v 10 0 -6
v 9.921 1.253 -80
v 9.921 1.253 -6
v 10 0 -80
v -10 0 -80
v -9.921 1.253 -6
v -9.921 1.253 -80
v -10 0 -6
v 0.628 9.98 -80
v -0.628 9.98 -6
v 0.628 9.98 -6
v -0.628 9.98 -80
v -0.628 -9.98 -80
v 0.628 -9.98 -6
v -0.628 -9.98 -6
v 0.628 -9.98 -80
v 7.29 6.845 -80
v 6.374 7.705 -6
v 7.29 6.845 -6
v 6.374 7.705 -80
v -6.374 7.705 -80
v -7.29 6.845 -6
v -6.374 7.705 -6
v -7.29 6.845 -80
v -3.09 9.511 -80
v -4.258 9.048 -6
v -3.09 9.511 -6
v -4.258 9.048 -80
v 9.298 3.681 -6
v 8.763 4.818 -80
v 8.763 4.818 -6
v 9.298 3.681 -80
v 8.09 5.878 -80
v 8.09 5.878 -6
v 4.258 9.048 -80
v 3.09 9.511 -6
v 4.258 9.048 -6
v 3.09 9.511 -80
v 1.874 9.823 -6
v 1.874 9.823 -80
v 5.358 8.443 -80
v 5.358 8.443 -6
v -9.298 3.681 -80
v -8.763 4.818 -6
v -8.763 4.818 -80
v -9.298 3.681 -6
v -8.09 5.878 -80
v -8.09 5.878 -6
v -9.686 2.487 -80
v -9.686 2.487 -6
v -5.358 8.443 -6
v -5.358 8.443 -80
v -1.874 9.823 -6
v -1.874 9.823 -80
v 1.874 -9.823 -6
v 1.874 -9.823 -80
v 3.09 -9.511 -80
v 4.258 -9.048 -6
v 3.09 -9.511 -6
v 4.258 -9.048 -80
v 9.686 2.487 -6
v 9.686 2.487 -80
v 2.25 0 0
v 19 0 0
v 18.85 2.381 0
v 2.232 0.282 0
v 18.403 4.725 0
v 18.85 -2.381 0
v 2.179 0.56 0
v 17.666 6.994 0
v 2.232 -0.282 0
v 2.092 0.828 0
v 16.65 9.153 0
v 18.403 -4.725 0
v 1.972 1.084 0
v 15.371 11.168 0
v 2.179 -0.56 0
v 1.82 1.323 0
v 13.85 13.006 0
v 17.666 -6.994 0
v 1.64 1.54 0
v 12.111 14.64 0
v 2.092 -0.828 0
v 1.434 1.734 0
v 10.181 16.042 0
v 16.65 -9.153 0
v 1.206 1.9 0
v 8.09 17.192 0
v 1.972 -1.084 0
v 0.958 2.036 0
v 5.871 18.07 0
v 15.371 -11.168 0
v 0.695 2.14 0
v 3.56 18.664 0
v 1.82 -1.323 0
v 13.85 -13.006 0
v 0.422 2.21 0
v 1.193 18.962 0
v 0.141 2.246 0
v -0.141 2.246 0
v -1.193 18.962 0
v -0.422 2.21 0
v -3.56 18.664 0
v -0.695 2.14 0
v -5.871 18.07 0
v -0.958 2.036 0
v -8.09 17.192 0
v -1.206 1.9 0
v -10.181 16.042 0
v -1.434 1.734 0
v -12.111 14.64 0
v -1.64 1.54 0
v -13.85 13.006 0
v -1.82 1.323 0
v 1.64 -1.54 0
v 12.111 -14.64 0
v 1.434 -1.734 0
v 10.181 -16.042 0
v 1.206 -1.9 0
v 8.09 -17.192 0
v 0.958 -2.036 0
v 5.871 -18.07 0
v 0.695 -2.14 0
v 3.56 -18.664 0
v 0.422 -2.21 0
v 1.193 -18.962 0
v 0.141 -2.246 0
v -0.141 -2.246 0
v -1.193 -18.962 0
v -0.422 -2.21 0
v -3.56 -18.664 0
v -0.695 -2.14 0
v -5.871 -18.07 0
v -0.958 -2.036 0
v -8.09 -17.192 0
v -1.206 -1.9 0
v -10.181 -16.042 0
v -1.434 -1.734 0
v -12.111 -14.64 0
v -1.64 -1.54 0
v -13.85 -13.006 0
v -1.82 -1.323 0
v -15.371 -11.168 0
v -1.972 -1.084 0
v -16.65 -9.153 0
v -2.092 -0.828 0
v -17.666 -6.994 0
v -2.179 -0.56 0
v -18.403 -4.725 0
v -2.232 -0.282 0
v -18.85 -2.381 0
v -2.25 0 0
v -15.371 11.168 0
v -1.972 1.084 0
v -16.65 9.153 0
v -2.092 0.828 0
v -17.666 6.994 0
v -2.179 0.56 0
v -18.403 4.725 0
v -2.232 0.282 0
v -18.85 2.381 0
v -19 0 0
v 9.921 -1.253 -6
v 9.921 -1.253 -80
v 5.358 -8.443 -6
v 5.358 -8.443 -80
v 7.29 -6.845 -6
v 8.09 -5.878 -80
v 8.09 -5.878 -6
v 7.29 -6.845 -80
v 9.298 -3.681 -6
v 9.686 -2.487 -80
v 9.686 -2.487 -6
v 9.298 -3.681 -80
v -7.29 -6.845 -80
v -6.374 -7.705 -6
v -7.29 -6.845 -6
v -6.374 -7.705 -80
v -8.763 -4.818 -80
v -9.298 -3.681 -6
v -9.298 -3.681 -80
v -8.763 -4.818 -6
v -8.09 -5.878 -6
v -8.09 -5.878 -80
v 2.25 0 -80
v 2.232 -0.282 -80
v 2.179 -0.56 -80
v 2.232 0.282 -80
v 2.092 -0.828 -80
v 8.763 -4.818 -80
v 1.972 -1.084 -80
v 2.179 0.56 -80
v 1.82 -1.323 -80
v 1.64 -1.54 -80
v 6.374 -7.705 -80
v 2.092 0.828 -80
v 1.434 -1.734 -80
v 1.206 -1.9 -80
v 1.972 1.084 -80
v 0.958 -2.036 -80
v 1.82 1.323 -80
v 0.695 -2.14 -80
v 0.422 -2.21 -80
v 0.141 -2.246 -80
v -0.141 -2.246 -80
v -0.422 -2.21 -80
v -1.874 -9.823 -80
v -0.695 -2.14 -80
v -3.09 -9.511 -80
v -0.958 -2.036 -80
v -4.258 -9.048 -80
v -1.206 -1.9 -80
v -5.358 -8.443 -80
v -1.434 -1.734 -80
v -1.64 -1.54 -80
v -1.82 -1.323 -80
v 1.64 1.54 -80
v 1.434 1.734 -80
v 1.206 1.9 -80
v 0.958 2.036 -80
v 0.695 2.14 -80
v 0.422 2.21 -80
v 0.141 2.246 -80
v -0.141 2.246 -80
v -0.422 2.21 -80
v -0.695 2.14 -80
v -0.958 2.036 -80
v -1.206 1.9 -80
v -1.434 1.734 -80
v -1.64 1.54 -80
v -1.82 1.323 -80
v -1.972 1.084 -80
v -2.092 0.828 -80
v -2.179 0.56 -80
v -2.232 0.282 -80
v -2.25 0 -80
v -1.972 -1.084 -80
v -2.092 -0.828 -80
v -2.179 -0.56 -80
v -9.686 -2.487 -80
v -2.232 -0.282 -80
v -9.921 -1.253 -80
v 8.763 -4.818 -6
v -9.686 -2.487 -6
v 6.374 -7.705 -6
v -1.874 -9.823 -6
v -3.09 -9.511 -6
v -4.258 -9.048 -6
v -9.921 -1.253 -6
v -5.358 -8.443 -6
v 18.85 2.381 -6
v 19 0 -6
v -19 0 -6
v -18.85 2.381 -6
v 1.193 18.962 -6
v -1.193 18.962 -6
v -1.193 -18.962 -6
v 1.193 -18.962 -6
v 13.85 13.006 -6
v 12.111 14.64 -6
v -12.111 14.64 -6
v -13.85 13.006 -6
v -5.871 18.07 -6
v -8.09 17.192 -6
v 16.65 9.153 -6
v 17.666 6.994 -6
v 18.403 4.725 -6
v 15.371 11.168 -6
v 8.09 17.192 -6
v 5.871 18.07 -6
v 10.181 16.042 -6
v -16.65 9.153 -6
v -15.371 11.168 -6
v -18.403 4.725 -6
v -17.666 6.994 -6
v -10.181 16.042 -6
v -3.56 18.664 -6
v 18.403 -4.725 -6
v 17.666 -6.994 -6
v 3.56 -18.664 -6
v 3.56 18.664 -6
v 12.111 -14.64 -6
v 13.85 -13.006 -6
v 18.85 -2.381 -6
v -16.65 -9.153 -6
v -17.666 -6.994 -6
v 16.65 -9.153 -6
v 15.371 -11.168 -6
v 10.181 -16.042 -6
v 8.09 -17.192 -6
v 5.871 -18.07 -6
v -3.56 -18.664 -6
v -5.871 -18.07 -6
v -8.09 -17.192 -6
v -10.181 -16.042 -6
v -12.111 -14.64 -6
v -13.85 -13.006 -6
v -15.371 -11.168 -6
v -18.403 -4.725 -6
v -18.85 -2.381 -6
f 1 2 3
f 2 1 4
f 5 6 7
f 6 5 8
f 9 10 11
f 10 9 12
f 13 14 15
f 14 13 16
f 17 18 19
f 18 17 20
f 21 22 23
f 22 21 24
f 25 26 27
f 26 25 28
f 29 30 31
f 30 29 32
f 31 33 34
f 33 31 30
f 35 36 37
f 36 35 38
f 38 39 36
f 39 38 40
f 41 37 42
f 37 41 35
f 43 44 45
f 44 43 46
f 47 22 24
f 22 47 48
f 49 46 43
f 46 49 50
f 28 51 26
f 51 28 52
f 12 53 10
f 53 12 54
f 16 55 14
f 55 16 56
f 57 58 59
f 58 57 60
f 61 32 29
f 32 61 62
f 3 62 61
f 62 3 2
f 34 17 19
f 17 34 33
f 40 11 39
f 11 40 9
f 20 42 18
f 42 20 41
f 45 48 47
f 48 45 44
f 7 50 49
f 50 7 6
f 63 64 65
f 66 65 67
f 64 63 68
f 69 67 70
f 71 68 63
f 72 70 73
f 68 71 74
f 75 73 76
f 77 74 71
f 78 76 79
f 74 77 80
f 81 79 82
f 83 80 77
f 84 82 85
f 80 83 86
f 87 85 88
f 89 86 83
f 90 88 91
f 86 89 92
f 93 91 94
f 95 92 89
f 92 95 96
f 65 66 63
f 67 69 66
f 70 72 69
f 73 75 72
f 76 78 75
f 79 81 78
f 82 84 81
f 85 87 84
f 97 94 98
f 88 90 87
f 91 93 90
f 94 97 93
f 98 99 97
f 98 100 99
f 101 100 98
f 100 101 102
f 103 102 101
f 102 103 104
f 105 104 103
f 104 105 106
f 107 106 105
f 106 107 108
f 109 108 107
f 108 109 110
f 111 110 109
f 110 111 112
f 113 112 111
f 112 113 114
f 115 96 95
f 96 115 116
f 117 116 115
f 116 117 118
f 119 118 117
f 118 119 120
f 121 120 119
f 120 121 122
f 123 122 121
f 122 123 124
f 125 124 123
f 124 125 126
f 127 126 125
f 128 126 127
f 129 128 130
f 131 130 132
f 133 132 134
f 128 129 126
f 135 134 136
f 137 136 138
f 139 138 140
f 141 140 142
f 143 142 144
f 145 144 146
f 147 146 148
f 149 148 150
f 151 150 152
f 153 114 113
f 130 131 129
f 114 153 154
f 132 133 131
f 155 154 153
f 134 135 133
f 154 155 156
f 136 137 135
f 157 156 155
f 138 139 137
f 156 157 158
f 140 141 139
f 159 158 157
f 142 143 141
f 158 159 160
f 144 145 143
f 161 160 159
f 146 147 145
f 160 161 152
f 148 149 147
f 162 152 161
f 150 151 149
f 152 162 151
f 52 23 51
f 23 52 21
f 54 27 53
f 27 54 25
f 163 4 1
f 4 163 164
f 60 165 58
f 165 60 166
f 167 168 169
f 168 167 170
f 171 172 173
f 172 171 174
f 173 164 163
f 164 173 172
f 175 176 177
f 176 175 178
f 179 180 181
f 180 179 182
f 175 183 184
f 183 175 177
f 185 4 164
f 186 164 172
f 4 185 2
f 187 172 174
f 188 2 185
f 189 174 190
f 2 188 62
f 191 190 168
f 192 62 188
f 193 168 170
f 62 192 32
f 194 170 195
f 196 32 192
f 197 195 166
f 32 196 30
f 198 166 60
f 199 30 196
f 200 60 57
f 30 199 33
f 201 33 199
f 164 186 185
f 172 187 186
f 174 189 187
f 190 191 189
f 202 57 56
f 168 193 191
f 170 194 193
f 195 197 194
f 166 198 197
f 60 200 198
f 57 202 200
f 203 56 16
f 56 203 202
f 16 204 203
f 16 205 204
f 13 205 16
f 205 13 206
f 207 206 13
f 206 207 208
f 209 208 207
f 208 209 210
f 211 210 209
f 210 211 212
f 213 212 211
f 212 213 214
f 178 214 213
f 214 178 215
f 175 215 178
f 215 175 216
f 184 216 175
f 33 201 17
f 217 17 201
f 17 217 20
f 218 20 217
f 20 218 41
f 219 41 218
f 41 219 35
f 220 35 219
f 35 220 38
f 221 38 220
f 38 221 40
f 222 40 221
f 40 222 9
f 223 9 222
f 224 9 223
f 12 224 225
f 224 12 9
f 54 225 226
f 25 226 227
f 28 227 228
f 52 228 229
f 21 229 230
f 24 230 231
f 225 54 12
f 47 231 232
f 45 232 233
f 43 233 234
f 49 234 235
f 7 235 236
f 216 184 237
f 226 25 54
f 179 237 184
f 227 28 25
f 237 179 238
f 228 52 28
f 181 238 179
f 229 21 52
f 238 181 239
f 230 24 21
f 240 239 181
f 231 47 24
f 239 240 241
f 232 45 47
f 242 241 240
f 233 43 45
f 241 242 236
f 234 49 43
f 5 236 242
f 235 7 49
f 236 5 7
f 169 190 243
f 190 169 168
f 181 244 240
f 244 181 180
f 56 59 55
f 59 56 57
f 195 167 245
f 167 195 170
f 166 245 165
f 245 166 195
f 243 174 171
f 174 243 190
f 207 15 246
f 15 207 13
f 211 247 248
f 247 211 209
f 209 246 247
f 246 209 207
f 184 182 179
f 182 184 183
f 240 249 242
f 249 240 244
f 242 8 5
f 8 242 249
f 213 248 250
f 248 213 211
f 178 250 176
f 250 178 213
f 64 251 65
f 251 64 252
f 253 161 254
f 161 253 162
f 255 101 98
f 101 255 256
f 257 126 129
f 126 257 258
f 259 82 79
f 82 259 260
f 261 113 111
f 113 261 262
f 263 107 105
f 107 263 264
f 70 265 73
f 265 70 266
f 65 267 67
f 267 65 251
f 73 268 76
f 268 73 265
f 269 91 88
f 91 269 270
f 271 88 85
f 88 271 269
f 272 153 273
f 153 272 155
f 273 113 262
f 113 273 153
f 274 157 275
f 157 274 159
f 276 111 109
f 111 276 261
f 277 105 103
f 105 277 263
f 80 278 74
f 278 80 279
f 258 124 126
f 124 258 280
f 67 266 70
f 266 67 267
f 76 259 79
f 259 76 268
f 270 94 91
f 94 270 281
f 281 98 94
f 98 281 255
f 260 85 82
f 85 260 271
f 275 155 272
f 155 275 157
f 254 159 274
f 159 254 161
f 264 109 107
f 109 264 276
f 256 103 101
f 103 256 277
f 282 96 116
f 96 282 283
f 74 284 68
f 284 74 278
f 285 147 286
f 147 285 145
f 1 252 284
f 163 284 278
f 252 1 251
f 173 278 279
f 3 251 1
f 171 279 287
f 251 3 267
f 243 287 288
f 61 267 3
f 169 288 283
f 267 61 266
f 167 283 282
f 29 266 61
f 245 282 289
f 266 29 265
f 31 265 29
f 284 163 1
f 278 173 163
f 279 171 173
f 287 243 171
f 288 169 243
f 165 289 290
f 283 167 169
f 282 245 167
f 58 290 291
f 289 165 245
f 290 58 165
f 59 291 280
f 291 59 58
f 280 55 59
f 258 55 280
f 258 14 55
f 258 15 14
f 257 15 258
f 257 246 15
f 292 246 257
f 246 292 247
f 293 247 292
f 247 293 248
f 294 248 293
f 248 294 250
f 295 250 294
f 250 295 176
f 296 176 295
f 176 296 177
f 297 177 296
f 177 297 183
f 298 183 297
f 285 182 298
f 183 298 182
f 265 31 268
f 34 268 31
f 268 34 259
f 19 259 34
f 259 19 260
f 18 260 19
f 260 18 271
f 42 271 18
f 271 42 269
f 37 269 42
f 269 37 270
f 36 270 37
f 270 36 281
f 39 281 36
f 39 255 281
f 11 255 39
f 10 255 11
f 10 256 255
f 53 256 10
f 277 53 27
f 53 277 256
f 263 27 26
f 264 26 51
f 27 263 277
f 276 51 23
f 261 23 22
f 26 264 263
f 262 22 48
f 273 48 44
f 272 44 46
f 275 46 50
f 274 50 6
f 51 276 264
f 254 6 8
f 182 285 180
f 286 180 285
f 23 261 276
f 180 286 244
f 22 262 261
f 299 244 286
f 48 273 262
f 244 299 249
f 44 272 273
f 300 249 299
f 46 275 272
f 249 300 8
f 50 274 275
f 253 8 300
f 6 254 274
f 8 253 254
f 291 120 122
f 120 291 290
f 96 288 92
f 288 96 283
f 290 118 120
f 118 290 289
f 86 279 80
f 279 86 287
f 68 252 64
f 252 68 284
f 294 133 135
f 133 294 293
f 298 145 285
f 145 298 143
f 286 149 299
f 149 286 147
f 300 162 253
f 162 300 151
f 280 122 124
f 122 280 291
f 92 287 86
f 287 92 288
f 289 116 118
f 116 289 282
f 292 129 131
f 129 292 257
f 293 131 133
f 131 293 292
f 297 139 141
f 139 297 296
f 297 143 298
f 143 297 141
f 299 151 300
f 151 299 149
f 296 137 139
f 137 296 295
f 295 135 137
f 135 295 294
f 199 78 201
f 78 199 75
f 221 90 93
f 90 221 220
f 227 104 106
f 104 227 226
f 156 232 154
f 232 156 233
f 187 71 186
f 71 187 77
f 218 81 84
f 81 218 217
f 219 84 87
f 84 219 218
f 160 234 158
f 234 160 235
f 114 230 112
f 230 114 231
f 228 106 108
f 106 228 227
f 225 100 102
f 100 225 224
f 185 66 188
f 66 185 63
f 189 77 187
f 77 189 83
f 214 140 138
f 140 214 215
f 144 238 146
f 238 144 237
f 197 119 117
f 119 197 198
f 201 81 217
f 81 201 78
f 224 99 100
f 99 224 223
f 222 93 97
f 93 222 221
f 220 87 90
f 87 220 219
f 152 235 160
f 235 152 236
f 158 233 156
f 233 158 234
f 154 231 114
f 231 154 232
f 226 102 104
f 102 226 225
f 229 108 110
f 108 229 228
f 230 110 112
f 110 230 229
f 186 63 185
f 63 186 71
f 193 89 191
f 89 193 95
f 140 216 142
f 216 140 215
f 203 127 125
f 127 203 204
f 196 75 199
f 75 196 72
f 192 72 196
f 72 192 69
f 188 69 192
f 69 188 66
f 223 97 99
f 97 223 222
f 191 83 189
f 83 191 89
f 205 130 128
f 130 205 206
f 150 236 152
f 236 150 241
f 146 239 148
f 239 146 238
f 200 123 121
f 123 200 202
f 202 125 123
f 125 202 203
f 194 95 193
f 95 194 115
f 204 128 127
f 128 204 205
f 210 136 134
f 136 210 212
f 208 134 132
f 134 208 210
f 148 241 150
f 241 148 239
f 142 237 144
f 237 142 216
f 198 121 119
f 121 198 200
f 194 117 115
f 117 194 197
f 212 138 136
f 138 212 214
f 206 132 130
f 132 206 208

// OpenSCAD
$fn = 50;


difference() {
	union() {
		translate(v = [0, 0, -80.0000000000]) {
			cylinder(h = 80, r = 10.0000000000);
		}
		translate(v = [0, 0, -6.0000000000]) {
			cylinder(h = 6, r = 19.0000000000);
		}
	}
	union() {
		#translate(v = [0, 0, -80]) {
			cylinder(h = 80, r = 2.2500000000);
		}
	}
}
